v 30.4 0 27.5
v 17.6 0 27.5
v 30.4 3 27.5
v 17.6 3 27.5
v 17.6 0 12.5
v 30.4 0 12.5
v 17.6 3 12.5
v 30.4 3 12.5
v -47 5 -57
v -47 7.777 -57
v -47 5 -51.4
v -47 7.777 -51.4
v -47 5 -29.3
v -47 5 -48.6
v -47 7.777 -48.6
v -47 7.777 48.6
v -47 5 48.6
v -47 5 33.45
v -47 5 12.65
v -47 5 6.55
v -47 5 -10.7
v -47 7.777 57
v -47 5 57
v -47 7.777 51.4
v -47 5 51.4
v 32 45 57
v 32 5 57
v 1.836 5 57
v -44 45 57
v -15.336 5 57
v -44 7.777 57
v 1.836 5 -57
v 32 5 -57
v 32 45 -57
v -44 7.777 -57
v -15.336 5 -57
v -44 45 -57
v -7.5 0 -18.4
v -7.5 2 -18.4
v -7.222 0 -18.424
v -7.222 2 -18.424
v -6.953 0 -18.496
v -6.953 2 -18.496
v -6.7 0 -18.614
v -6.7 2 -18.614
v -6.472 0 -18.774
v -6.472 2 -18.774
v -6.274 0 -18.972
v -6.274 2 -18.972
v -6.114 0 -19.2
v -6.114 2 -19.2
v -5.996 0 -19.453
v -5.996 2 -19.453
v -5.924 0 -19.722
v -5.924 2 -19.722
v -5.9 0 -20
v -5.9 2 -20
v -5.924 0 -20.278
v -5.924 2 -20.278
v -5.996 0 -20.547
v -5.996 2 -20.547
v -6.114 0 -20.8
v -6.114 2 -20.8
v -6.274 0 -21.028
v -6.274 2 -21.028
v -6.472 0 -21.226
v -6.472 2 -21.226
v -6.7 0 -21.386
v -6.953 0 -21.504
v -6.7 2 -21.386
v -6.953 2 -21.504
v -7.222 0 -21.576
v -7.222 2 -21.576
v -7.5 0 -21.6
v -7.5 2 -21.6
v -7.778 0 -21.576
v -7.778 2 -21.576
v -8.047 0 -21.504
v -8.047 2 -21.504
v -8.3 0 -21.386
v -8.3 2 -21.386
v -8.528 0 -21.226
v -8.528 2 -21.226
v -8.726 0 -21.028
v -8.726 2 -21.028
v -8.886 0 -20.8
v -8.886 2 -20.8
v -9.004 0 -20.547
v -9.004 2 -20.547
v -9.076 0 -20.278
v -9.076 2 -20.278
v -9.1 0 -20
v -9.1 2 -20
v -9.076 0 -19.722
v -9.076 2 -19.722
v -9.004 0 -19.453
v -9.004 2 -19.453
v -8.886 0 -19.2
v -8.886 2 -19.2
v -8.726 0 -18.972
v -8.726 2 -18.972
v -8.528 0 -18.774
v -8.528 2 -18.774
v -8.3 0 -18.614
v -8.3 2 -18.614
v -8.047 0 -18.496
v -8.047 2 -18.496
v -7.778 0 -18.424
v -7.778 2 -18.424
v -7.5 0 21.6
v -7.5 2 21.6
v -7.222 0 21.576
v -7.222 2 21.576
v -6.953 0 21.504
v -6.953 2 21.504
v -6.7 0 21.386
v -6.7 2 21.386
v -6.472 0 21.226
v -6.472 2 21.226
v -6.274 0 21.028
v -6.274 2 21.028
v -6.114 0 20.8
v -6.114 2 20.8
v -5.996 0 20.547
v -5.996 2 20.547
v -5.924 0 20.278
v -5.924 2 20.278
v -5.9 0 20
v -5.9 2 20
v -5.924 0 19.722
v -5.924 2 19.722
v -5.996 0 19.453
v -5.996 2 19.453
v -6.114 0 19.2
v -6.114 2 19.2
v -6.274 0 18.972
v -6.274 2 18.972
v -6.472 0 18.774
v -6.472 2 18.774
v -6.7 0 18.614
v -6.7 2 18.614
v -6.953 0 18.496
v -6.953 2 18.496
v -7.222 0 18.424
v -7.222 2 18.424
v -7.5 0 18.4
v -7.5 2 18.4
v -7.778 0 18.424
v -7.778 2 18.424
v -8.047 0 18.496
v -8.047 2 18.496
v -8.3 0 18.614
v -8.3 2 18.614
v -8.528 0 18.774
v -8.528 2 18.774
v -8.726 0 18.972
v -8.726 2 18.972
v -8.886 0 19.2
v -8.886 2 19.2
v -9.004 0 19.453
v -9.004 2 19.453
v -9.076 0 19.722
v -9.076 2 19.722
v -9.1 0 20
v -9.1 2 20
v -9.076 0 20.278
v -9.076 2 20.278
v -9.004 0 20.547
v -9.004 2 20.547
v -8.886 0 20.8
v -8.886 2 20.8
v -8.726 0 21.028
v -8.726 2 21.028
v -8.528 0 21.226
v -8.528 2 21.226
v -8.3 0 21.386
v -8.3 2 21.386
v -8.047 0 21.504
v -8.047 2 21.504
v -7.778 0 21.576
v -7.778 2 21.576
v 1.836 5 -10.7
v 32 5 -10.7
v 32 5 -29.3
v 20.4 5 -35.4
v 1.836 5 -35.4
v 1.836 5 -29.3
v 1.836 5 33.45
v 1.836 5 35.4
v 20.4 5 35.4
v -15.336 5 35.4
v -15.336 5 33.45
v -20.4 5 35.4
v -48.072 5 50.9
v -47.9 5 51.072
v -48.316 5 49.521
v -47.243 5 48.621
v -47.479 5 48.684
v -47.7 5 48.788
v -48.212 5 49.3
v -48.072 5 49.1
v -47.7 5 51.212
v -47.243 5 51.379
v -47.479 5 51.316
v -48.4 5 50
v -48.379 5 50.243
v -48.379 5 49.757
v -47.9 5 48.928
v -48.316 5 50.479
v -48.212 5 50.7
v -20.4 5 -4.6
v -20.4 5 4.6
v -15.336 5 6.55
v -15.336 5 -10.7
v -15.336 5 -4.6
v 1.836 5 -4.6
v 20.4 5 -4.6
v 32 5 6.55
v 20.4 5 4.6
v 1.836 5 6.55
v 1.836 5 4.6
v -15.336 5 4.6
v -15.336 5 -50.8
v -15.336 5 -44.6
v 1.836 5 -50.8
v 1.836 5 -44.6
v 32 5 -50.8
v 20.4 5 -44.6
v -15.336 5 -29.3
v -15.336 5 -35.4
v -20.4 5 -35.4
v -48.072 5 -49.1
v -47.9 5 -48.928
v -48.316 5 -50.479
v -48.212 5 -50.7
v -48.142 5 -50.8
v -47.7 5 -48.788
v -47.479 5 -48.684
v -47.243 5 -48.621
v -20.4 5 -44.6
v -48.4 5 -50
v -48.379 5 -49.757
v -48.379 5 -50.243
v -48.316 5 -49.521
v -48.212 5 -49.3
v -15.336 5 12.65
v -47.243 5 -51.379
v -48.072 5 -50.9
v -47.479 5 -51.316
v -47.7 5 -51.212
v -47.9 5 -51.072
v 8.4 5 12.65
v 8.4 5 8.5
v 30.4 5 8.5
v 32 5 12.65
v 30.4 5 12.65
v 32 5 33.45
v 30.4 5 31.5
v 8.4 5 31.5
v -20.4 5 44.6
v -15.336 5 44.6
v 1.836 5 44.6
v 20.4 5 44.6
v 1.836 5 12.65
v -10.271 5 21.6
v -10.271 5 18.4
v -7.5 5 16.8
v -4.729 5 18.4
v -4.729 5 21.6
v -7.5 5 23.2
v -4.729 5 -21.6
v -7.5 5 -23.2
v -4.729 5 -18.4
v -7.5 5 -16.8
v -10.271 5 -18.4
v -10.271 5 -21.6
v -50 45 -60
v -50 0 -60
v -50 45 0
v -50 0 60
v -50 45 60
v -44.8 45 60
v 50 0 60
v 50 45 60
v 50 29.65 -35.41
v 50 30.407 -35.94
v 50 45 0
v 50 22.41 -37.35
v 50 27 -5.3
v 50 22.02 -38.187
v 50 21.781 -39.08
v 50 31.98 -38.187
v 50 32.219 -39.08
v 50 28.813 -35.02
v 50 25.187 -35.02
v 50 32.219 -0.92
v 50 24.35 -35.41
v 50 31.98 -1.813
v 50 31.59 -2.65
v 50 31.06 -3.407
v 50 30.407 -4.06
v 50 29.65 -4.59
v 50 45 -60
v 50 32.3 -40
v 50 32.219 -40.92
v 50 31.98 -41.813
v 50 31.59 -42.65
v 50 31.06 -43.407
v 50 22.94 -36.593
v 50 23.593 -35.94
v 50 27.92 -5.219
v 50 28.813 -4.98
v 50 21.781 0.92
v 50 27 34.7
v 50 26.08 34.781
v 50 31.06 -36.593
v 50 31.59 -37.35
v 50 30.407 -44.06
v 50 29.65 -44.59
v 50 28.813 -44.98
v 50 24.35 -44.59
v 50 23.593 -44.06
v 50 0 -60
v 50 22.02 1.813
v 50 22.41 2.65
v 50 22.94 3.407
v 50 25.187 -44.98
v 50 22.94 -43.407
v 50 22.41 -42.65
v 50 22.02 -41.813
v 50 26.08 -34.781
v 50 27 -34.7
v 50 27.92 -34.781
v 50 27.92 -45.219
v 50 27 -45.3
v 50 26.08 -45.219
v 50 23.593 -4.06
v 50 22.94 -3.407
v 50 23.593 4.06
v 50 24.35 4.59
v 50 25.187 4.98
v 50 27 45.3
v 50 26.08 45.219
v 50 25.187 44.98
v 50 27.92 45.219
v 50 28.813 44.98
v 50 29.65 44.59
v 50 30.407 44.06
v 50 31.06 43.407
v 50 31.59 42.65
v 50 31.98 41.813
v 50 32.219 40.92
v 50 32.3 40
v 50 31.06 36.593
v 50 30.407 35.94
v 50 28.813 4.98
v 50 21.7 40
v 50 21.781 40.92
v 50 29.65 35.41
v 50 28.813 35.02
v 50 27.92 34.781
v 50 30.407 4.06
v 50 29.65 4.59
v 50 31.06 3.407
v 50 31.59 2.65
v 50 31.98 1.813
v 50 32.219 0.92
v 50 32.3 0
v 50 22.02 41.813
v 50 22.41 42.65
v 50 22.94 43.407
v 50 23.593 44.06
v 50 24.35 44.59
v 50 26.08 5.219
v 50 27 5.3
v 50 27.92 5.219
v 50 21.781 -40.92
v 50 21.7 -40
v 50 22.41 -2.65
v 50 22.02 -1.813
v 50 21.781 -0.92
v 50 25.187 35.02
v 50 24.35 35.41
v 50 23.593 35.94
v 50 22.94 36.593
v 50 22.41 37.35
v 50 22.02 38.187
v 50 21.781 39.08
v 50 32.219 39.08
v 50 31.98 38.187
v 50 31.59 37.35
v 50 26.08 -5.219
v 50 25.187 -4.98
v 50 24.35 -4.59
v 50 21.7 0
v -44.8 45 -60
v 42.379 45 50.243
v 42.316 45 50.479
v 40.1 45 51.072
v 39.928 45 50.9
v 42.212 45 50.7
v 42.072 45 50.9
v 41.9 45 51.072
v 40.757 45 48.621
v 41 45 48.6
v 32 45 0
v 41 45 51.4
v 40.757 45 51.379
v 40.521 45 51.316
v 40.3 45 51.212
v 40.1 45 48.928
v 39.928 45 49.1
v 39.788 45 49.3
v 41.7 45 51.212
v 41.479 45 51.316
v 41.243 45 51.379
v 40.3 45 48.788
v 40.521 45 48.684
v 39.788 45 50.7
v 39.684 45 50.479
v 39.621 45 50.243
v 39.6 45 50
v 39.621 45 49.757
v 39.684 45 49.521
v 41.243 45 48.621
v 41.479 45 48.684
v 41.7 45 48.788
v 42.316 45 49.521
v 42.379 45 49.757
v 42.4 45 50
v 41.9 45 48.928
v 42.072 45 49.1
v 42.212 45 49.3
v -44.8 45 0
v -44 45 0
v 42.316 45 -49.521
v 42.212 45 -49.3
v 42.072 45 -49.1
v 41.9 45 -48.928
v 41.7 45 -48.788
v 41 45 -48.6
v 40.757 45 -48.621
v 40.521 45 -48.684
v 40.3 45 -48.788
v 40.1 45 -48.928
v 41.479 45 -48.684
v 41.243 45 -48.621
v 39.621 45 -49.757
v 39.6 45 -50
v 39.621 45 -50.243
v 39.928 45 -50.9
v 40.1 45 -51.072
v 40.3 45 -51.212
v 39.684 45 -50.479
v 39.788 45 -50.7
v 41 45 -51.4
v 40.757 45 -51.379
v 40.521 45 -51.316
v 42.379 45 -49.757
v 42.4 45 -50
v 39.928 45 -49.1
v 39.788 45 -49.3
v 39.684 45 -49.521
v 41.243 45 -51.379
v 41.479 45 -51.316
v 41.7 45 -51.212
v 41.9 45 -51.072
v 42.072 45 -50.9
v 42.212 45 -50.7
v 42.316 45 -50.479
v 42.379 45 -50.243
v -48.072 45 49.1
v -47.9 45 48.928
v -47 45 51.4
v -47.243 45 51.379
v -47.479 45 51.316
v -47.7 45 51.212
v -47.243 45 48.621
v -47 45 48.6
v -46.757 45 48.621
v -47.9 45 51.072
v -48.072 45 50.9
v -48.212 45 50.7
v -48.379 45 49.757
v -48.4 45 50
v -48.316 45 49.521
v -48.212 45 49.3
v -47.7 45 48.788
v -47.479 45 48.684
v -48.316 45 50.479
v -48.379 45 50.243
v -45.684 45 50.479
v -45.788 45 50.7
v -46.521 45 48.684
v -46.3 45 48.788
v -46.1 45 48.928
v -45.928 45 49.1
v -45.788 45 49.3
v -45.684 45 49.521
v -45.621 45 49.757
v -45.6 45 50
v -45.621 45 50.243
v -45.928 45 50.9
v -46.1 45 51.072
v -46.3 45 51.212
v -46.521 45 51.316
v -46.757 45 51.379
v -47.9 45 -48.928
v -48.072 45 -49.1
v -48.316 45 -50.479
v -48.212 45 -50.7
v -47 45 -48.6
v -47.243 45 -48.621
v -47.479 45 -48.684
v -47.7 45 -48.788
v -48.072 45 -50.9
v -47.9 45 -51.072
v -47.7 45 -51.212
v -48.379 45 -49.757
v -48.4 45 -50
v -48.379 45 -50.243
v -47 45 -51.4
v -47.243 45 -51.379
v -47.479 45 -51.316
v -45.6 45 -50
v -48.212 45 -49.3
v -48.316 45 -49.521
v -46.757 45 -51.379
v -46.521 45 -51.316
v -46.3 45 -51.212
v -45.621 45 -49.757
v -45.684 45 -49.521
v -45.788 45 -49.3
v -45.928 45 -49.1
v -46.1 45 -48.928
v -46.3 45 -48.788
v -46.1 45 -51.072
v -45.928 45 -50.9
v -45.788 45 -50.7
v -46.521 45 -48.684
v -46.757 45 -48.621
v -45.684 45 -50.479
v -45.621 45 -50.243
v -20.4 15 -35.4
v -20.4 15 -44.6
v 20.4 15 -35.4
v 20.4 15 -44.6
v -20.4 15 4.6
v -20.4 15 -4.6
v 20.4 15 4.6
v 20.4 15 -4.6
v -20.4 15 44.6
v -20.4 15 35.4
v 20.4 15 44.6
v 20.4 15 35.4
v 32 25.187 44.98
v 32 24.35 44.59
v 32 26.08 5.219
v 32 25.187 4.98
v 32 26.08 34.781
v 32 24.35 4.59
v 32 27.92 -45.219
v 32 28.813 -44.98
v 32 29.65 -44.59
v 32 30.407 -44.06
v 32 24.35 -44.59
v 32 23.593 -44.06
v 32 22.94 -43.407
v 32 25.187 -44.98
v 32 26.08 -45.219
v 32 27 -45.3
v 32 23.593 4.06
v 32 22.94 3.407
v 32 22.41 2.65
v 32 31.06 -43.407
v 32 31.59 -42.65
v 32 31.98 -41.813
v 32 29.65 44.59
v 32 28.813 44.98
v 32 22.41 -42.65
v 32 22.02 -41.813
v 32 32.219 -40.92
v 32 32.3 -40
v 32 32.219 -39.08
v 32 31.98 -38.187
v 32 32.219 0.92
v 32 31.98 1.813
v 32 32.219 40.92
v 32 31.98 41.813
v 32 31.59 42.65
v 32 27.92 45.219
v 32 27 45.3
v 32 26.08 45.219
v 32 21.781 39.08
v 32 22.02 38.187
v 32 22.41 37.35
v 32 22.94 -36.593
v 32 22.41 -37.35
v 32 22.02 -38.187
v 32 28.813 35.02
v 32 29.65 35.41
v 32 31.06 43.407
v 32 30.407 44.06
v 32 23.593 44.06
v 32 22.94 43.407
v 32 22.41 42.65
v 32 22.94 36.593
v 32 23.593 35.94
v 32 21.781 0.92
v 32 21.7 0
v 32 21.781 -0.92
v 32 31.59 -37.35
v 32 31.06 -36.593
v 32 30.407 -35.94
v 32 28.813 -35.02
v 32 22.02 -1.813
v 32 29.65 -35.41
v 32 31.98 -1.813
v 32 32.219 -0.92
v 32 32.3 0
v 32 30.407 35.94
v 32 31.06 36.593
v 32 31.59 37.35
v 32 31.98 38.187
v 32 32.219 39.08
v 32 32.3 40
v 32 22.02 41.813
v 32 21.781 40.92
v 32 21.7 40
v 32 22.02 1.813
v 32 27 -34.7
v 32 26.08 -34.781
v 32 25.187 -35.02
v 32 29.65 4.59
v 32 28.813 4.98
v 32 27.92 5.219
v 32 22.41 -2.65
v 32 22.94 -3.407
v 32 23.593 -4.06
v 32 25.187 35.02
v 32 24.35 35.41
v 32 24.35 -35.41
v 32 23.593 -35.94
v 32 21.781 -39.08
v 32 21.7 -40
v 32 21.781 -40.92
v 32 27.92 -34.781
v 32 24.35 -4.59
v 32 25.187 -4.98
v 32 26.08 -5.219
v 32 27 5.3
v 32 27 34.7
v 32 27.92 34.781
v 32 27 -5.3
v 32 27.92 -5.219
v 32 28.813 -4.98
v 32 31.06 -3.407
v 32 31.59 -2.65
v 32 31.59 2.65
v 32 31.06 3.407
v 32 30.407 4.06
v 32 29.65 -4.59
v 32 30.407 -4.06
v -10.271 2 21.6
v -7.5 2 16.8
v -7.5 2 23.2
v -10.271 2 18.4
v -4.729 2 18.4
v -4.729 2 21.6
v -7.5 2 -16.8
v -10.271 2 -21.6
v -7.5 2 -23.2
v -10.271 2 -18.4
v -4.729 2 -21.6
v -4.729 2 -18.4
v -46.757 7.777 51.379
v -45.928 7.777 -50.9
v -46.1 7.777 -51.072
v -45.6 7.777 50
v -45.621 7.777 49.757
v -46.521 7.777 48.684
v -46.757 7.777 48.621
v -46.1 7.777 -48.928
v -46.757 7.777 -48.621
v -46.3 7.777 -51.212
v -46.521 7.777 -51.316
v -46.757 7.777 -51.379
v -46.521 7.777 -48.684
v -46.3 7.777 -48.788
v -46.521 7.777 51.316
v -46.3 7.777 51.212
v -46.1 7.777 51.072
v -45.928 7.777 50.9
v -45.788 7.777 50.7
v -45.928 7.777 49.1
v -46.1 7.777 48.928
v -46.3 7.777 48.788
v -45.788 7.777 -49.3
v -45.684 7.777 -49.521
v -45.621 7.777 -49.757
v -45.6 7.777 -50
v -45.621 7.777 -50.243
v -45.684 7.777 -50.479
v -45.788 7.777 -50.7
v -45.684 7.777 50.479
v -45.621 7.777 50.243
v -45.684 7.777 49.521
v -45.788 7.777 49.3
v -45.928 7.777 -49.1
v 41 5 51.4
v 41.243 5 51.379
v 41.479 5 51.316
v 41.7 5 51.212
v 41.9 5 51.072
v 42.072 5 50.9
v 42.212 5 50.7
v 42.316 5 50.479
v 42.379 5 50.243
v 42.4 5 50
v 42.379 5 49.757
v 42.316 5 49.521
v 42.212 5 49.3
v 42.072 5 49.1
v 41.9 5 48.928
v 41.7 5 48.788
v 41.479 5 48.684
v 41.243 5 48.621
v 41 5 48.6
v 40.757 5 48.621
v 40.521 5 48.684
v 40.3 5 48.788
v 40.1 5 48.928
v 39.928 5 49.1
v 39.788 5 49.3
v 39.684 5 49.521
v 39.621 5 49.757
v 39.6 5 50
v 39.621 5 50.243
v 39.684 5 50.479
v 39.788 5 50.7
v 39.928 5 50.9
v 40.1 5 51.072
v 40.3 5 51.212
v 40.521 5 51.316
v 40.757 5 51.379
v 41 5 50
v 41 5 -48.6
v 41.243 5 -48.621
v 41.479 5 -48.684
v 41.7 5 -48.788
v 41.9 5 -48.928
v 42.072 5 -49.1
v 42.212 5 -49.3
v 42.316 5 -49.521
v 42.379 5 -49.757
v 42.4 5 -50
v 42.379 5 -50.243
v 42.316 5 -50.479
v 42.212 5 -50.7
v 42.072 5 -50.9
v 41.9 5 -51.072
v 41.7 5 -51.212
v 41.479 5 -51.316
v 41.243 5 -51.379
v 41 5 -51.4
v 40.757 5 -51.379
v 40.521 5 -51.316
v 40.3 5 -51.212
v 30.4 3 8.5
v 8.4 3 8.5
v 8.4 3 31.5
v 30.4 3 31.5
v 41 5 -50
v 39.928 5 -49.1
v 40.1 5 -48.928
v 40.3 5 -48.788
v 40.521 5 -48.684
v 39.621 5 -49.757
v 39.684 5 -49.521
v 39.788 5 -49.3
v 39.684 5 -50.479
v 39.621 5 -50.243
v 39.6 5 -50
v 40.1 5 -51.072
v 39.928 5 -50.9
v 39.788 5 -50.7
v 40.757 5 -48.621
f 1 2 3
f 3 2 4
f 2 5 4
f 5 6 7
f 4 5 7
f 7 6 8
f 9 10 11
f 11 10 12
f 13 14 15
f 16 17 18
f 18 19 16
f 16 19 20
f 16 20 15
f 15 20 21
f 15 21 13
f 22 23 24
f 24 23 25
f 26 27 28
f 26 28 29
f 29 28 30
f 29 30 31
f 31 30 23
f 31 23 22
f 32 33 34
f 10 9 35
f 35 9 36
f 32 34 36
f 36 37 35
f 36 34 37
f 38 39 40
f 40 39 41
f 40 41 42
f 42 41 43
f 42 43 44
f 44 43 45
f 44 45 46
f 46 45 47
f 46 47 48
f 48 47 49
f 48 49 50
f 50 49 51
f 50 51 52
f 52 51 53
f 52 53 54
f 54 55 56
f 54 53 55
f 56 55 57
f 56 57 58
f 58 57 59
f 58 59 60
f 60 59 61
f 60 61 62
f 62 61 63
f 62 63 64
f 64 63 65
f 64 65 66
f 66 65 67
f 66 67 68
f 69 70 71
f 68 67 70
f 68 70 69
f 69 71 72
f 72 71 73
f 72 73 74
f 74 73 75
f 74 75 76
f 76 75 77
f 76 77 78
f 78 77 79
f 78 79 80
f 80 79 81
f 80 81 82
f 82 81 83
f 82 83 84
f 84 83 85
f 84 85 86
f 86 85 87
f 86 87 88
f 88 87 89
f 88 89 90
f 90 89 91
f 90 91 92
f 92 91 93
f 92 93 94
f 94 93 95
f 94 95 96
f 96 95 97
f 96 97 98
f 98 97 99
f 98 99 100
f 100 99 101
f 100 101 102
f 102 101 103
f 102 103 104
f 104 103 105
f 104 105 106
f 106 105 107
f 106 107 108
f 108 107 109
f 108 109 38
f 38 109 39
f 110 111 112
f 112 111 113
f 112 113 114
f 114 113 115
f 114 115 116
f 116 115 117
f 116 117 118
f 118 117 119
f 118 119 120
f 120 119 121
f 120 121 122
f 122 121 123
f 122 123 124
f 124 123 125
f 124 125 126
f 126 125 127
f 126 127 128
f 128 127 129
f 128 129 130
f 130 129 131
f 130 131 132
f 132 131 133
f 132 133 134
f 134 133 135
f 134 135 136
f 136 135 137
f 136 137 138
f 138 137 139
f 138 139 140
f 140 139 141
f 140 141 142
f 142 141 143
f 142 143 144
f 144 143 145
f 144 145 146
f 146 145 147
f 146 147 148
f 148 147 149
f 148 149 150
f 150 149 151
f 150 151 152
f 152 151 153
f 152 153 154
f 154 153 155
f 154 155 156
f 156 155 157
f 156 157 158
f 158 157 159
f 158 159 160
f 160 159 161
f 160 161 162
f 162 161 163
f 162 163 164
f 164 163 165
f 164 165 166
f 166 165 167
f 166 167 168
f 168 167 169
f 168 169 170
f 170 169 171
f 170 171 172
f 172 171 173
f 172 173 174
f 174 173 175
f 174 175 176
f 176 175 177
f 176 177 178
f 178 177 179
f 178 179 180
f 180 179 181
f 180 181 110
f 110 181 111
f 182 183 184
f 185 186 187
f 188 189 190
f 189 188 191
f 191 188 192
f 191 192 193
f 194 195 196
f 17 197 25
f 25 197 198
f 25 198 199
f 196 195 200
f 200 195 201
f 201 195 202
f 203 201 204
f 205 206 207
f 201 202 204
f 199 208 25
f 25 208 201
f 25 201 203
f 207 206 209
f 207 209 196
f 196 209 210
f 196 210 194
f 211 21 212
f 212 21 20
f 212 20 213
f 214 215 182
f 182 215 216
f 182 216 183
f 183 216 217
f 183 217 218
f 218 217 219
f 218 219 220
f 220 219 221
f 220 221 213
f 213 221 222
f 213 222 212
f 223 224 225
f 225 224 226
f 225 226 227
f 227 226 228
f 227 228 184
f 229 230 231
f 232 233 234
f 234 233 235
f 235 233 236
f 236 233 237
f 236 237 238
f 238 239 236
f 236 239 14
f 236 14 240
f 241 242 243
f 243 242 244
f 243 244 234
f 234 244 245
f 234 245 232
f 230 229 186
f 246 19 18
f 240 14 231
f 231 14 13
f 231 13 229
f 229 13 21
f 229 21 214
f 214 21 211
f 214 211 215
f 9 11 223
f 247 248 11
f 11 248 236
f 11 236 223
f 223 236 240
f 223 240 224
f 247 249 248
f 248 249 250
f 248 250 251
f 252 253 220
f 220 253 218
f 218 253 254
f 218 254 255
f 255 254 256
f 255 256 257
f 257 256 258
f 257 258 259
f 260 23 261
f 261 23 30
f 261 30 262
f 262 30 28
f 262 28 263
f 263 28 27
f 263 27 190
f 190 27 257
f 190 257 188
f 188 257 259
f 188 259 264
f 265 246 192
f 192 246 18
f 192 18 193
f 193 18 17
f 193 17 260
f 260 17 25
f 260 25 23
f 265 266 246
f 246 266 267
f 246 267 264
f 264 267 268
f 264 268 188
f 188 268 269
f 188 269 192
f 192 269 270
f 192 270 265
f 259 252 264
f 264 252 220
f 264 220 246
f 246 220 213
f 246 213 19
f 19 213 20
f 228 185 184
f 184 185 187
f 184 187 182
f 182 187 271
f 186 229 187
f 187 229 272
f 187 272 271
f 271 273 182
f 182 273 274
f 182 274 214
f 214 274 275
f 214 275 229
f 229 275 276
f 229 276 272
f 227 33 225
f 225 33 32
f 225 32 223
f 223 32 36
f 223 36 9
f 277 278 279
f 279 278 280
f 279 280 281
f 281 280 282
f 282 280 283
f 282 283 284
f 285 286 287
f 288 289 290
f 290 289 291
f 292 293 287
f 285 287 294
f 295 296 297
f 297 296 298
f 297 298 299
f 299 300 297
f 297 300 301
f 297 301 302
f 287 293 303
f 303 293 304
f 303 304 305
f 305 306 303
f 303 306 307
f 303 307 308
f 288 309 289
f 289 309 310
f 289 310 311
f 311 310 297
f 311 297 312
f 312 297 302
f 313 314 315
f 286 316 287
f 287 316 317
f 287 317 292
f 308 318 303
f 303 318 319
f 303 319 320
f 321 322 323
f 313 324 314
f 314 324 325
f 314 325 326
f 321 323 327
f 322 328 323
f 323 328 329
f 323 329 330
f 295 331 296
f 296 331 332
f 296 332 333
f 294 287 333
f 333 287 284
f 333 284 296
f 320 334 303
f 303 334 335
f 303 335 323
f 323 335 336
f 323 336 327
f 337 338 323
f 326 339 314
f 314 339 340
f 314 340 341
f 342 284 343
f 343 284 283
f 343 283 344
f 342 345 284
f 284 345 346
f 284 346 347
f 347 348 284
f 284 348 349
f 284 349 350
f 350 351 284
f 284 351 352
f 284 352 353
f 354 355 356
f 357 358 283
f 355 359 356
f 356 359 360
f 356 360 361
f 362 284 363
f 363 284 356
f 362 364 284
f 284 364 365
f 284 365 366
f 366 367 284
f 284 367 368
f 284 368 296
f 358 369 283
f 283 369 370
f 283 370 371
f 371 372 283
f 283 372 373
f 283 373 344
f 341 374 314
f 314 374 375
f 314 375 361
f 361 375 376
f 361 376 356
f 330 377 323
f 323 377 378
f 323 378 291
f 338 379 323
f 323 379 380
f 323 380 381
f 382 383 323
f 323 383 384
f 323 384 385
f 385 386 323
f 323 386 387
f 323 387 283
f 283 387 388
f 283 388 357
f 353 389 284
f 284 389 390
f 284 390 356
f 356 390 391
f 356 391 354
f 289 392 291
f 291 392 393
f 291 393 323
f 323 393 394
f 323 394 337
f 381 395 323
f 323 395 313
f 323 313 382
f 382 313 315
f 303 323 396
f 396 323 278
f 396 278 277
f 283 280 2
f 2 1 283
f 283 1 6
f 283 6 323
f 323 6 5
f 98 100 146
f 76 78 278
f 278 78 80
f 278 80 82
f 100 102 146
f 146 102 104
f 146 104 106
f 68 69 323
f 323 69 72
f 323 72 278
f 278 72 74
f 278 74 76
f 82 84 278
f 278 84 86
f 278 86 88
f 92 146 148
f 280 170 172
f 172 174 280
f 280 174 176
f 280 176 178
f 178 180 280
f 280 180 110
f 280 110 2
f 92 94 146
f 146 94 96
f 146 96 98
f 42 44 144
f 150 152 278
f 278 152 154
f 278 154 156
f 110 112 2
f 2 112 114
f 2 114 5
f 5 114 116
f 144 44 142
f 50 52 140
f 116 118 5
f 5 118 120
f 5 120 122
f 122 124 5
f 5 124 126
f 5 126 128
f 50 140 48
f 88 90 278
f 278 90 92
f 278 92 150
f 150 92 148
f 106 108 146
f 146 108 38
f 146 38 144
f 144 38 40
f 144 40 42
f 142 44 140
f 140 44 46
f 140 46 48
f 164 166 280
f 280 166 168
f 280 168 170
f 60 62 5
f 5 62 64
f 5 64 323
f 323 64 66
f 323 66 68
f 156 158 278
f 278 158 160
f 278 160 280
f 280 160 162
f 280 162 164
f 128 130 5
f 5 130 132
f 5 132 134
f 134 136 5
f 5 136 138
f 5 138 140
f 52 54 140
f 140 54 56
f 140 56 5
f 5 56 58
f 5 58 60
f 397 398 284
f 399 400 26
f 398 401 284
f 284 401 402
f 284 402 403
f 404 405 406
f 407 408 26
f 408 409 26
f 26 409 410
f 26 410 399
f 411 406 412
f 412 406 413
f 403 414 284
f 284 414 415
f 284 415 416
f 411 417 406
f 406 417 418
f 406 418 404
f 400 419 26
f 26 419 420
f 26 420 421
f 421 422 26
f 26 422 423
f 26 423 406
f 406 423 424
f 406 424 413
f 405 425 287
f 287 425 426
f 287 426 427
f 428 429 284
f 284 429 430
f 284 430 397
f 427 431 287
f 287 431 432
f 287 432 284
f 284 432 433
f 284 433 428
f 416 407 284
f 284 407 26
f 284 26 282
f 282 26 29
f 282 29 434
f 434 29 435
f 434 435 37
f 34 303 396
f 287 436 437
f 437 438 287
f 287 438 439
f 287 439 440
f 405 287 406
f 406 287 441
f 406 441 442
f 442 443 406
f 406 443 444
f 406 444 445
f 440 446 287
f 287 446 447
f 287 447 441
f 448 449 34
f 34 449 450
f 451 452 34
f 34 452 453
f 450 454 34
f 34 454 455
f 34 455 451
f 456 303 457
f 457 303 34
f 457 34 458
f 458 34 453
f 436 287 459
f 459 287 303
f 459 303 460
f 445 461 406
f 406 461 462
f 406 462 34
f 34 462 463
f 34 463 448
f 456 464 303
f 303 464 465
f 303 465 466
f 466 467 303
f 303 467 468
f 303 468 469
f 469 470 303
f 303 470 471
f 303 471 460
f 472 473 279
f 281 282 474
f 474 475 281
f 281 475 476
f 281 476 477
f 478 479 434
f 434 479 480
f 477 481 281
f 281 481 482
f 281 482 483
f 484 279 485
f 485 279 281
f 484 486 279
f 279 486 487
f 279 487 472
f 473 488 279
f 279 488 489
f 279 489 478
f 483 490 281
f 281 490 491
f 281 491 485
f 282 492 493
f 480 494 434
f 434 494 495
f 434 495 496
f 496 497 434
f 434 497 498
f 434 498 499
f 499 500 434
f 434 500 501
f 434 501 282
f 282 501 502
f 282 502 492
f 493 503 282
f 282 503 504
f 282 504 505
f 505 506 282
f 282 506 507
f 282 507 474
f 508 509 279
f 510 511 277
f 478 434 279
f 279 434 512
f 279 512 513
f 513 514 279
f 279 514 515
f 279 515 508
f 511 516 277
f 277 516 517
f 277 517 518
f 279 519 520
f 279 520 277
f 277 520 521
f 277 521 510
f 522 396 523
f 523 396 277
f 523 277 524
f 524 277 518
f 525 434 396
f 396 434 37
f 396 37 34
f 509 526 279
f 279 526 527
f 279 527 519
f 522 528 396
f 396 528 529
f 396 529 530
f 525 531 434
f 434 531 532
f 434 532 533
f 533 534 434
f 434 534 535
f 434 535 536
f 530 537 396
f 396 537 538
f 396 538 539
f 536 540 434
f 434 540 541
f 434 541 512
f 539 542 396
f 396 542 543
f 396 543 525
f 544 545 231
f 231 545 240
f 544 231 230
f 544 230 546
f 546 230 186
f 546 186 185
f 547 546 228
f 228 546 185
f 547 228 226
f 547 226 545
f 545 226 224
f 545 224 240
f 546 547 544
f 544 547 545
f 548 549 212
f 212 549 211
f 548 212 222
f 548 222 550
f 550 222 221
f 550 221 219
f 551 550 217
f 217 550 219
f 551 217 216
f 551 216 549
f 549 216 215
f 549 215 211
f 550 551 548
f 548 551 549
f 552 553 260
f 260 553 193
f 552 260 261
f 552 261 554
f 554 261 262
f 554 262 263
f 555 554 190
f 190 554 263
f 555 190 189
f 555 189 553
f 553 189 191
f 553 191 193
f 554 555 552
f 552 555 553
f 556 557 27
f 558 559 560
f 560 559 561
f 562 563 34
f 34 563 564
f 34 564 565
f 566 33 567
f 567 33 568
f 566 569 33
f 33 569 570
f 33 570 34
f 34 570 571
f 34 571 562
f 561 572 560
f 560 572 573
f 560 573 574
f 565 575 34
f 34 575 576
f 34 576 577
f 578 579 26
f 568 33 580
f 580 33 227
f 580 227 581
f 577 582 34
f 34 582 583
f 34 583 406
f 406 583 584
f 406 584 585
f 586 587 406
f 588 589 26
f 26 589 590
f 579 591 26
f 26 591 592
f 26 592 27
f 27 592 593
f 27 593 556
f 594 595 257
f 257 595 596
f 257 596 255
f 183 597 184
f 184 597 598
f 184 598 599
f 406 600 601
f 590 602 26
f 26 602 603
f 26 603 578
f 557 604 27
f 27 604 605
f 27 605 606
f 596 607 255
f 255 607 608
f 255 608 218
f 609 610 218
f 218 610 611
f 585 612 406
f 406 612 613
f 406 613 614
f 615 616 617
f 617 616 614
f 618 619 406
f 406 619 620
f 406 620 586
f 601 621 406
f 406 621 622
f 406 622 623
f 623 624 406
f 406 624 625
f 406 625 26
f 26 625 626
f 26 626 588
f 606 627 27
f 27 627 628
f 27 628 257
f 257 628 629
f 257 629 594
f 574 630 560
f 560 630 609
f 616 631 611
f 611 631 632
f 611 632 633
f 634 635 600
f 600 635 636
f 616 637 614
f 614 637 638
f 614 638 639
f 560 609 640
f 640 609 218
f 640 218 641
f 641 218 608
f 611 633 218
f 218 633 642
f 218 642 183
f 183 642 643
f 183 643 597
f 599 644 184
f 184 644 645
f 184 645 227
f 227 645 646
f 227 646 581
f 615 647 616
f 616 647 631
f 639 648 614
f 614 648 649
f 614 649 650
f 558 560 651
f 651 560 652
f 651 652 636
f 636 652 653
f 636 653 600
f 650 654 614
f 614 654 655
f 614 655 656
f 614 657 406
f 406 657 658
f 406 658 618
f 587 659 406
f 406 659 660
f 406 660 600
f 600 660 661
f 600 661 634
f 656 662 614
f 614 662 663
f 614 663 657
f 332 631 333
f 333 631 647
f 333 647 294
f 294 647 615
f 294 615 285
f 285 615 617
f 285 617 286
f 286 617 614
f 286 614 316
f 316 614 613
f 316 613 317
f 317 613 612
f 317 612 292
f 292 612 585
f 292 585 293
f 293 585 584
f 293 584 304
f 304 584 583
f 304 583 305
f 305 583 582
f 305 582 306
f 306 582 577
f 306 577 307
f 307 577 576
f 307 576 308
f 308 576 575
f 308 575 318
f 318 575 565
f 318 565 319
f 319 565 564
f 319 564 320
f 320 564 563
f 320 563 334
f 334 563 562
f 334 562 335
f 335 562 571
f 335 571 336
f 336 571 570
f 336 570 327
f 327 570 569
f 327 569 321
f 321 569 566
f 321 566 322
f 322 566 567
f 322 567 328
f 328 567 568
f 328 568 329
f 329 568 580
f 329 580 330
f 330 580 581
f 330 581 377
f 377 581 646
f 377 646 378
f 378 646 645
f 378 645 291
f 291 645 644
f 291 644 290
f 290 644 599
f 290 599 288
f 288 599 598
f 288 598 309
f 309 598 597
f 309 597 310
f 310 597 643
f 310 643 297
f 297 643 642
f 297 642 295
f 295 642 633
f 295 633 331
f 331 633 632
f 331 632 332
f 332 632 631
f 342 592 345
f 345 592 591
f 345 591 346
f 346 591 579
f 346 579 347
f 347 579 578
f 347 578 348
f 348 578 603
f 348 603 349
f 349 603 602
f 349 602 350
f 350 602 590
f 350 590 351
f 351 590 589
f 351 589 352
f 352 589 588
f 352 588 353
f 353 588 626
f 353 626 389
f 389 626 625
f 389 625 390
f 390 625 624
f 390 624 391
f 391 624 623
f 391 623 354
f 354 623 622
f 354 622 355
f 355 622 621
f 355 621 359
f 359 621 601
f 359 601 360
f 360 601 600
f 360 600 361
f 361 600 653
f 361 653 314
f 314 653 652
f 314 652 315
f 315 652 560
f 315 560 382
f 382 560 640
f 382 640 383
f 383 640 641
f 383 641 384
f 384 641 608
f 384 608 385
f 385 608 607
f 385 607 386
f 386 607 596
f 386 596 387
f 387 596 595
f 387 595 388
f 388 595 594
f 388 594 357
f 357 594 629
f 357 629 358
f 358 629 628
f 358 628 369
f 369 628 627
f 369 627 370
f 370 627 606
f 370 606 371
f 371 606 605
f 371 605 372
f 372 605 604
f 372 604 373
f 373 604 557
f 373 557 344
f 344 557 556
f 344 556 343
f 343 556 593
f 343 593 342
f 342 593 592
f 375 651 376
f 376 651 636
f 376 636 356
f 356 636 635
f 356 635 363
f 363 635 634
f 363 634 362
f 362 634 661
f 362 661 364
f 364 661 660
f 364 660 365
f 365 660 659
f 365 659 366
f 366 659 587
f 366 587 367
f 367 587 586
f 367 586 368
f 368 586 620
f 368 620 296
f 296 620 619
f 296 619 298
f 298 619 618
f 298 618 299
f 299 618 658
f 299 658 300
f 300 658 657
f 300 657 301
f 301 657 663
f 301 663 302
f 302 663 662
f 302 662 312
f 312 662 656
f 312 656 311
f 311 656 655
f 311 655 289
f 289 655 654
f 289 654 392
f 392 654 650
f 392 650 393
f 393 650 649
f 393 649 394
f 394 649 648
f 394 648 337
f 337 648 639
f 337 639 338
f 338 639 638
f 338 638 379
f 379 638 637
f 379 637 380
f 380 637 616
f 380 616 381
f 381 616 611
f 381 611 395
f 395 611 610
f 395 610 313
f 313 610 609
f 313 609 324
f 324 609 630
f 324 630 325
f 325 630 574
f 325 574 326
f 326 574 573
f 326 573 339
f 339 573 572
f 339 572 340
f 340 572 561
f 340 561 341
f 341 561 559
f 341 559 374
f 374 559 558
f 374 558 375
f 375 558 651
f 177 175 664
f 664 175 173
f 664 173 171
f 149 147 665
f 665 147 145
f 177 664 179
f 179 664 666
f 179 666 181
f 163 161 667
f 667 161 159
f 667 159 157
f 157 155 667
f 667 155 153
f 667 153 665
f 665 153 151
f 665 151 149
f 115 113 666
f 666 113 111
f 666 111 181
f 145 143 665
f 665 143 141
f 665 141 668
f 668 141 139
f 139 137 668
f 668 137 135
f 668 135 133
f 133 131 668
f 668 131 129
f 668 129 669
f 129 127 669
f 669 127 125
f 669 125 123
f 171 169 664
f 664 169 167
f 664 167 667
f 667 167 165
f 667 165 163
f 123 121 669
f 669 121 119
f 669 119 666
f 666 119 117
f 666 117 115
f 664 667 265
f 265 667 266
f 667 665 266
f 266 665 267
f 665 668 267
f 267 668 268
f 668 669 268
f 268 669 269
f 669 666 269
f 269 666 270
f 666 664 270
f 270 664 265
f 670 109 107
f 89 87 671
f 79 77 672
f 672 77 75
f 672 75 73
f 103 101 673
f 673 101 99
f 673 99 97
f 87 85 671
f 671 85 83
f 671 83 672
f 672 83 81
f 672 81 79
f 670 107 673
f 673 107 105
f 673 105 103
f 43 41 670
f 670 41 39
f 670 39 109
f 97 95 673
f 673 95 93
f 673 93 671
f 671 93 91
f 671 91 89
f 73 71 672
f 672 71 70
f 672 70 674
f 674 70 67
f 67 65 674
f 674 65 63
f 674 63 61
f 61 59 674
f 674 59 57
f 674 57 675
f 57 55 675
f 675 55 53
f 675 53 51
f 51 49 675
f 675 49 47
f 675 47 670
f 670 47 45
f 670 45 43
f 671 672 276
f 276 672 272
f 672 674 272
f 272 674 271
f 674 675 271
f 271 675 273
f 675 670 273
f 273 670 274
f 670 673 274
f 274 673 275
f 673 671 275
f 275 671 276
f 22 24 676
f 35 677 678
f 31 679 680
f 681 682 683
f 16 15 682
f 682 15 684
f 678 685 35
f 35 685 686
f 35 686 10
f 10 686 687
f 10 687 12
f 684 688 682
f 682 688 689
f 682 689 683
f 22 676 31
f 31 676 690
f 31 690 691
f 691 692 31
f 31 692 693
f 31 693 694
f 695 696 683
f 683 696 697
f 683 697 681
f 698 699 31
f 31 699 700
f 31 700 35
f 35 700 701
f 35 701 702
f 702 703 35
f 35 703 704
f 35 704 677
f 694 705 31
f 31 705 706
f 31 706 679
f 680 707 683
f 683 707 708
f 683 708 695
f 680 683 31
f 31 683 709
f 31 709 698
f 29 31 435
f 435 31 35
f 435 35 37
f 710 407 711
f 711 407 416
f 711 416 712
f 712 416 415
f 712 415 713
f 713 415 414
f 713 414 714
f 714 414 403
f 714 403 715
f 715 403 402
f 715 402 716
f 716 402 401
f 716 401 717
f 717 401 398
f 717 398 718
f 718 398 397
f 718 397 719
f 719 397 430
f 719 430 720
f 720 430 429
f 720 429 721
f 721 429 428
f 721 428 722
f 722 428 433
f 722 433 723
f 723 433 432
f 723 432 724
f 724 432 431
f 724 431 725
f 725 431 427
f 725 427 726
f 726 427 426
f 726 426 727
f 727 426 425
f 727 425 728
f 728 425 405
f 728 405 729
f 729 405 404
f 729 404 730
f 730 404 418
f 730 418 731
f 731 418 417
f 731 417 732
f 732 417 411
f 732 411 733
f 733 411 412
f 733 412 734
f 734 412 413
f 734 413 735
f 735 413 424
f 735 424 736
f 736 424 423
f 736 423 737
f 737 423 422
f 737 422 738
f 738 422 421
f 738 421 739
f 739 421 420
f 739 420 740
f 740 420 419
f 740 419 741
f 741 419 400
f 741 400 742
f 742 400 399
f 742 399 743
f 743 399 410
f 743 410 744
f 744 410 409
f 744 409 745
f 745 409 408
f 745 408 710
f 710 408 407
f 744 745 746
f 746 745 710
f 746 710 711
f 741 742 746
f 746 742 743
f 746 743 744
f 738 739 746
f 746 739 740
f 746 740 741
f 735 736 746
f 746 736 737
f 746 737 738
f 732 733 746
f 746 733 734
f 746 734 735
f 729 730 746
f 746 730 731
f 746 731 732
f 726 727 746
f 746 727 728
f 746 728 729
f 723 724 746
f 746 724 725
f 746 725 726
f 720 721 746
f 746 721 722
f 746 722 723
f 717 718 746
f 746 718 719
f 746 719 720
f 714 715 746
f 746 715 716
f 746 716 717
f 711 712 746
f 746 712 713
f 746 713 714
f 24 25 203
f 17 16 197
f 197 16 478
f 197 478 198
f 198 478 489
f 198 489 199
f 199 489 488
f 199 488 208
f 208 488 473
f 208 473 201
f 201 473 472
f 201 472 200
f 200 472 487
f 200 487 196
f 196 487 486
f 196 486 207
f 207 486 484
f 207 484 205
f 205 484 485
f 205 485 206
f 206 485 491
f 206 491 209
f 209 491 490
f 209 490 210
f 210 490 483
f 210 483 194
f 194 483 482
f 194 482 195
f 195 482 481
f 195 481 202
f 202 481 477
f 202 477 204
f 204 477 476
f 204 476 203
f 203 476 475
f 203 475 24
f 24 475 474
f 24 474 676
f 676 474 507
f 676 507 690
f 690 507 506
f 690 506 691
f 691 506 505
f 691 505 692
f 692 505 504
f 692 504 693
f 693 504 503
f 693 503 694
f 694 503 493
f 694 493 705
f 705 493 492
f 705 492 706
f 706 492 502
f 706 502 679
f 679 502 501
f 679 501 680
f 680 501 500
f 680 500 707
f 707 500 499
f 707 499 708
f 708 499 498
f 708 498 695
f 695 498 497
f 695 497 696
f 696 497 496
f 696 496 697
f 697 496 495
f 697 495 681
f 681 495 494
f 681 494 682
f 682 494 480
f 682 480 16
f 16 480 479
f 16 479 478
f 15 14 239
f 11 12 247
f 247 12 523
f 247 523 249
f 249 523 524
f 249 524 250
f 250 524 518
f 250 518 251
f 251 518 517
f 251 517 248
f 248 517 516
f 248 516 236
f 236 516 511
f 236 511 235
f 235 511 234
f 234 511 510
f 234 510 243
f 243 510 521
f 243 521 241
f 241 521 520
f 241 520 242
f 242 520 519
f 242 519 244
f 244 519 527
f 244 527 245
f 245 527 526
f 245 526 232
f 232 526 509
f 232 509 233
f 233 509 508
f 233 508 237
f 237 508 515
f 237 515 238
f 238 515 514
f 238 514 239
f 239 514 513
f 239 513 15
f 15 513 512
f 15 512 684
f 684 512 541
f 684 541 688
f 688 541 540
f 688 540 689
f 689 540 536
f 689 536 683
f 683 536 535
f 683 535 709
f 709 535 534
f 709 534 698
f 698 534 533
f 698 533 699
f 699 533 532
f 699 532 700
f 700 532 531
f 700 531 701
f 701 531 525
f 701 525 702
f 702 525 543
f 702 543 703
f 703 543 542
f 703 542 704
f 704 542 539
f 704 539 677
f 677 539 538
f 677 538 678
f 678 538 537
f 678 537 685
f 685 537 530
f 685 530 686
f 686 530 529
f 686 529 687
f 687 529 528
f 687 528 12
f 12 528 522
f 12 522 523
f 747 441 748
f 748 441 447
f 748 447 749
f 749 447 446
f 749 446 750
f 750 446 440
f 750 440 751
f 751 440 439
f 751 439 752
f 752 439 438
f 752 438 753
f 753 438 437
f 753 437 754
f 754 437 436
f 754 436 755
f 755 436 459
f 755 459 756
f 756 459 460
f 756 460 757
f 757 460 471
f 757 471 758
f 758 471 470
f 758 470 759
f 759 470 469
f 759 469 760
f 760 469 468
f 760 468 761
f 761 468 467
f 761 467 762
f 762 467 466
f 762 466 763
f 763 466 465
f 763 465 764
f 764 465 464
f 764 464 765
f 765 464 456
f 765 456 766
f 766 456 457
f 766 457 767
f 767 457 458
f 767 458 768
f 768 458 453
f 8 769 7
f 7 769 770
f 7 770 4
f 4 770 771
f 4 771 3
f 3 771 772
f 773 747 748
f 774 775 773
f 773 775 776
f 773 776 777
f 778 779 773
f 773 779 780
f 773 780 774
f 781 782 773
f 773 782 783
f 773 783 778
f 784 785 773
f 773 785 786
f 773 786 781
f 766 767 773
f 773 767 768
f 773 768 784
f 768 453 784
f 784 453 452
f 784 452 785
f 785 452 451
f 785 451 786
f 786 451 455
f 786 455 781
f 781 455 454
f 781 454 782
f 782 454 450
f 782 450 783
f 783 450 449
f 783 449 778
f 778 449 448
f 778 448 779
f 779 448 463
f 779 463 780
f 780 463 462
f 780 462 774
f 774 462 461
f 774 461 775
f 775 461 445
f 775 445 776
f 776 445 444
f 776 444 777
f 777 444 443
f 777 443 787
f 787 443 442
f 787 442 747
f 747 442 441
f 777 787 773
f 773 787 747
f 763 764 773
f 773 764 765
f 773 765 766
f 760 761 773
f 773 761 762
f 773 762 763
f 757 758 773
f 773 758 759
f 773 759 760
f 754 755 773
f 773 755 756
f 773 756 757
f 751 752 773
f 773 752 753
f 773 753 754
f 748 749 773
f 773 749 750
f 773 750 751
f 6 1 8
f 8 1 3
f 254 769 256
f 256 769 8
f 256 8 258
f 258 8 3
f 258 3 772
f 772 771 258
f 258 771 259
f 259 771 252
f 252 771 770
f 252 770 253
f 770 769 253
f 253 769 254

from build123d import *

# Parameters (mm, degrees)
SKETCH1_W           = 100
SKETCH1_H           = 120
BOSS_EXTRUDE1_DEPTH = 5
SKETCH2_W           = 100
SKETCH2_H           = 120
SKETCH2_W_2         = 94
SKETCH2_H_2         = 114
BOSS_EXTRUDE2_DEPTH = 40
SKETCH3_W           = 40.8
SKETCH3_H           = 9.2
BOSS_EXTRUDE3_DEPTH = 10
SKETCH4_W           = 114
SKETCH4_H           = 40
BOSS_EXTRUDE4_DEPTH = 15
SKETCH5_R           = 5.3
CUT_EXTRUDE1_DEPTH  = 18
SKETCH8_R           = 1.6
CUT_EXTRUDE2_DEPTH  = 88.749643874
CUT_EXTRUDE3_DEPTH  = 3
SKETCH10_W          = 114
SKETCH10_H          = 37.223183771
BOSS_EXTRUDE6_DEPTH = 3
SKETCH11_R          = 1.4
CUT_EXTRUDE4_DEPTH  = 40
SKETCH14_W          = 12.8
SKETCH14_H          = 15
CUT_EXTRUDE5_DEPTH  = 5
CUT_EXTRUDE6_DEPTH  = 2


with BuildPart() as part:
    # Sketch1 → Boss-Extrude1 (new body)
    with BuildSketch(Plane(origin=(0, 0, 0), x_dir=(1, 0, 0), z_dir=(0, 1, 0))):
        Rectangle(SKETCH1_W, SKETCH1_H)
    extrude(amount=BOSS_EXTRUDE1_DEPTH)

    # Sketch2 → Boss-Extrude2 (add)
    with BuildSketch(Plane(origin=(0, 5, 0), x_dir=(1, 0, 0), z_dir=(0, 1, 0))):
        Rectangle(SKETCH2_W, SKETCH2_H)
        Rectangle(SKETCH2_W_2, SKETCH2_H_2, mode=Mode.SUBTRACT)
    extrude(amount=BOSS_EXTRUDE2_DEPTH)

    # Sketch3 → Boss-Extrude3 (add)
    with BuildSketch(Plane(origin=(0, 5, 0), x_dir=(1, 0, 0), z_dir=(0, 1, 0))):
        with Locations((0, 40)):
            Rectangle(SKETCH3_W, SKETCH3_H)
        Rectangle(SKETCH3_W, SKETCH3_H)
        with Locations((0, -40)):
            Rectangle(SKETCH3_W, SKETCH3_H)
    extrude(amount=BOSS_EXTRUDE3_DEPTH)

    # Sketch4 → Boss-Extrude4 (add)
    with BuildSketch(Plane.ZY.offset(-47)):
        with Locations((0, 25)):
            Rectangle(SKETCH4_W, SKETCH4_H)
    extrude(amount=BOSS_EXTRUDE4_DEPTH)

    # Sketch5 → Cut-Extrude1 (cut)
    with BuildSketch(Plane.ZY.offset(-32)):
        with Locations((-40, 27)):
            Circle(SKETCH5_R)
        with Locations((0, 27)):
            Circle(SKETCH5_R)
        with Locations((40, 27)):
            Circle(SKETCH5_R)
    extrude(amount=-CUT_EXTRUDE1_DEPTH, mode=Mode.SUBTRACT)

    # Sketch8 → Cut-Extrude2 (cut, through all)
    with BuildSketch(Plane(origin=(0, 5, 0), x_dir=(1, 0, 0), z_dir=(0, 1, 0))):
        with Locations(Location((-7.5, -20, 0), (0, 0, 270))):
            Circle(SKETCH8_R)
        with Locations(Location((-7.5, 20, 0), (0, 0, 270))):
            Circle(SKETCH8_R)
    extrude(amount=-CUT_EXTRUDE2_DEPTH, mode=Mode.SUBTRACT)

    # Sketch9 → Cut-Extrude3 (cut)
    with BuildSketch(Plane(origin=(0, 5, 0), x_dir=(1, 0, 0), z_dir=(0, 1, 0))):
        Polygon((-10.271281292, -21.6), (-7.5, -23.2), (-4.728718708, -21.6), (-4.728718708, -18.4), (-7.5, -16.8), (-10.271281292, -18.4), align=None)
        Polygon((-10.271281292, 21.6), (-10.271281292, 18.4), (-7.5, 16.8), (-4.728718708, 18.4), (-4.728718708, 21.6), (-7.5, 23.2), align=None)
    extrude(amount=-CUT_EXTRUDE3_DEPTH, mode=Mode.SUBTRACT)

    # Sketch10 → Boss-Extrude6 (add)
    with BuildSketch(Plane(origin=(-47, 0, 0), x_dir=(0, 0, -1), z_dir=(1, 0, 0))):
        with Locations((0, 26.388408114)):
            Rectangle(SKETCH10_W, SKETCH10_H)
    extrude(amount=BOSS_EXTRUDE6_DEPTH)

    # Sketch11 → Cut-Extrude4 (cut)
    with BuildSketch(Plane(origin=(0, 45, 0), x_dir=(1, 0, 0), z_dir=(0, 1, 0))):
        with Locations(Location((41, -50, 0), (0, 0, 270))):
            Circle(SKETCH11_R)
        with Locations(Location((41, 50, 0), (0, 0, 270))):
            Circle(SKETCH11_R)
        with Locations(Location((-47, 50, 0), (0, 0, 270))):
            Circle(SKETCH11_R)
        with Locations(Location((-47, -50, 0), (0, 0, 270))):
            Circle(SKETCH11_R)
    extrude(amount=-CUT_EXTRUDE4_DEPTH, mode=Mode.SUBTRACT)

    # Sketch14 → Cut-Extrude5 (cut)
    with BuildSketch(Plane.XZ):
        with Locations((24, 20)):
            Rectangle(SKETCH14_W, SKETCH14_H)
    extrude(amount=-CUT_EXTRUDE5_DEPTH, mode=Mode.SUBTRACT)

    # Sketch15 → Cut-Extrude6 (cut)
    with BuildSketch(Plane(origin=(0, 5, 0), x_dir=(1, 0, 0), z_dir=(0, 1, 0))):
        Polygon((30.4, -12.5), (30.4, -8.5), (8.4, -8.5), (8.4, -31.5), (30.4, -31.5), (30.4, -27.5), (17.6, -27.5), (17.6, -12.5), align=None)
    extrude(amount=-CUT_EXTRUDE6_DEPTH, mode=Mode.SUBTRACT)


solid = part.part
